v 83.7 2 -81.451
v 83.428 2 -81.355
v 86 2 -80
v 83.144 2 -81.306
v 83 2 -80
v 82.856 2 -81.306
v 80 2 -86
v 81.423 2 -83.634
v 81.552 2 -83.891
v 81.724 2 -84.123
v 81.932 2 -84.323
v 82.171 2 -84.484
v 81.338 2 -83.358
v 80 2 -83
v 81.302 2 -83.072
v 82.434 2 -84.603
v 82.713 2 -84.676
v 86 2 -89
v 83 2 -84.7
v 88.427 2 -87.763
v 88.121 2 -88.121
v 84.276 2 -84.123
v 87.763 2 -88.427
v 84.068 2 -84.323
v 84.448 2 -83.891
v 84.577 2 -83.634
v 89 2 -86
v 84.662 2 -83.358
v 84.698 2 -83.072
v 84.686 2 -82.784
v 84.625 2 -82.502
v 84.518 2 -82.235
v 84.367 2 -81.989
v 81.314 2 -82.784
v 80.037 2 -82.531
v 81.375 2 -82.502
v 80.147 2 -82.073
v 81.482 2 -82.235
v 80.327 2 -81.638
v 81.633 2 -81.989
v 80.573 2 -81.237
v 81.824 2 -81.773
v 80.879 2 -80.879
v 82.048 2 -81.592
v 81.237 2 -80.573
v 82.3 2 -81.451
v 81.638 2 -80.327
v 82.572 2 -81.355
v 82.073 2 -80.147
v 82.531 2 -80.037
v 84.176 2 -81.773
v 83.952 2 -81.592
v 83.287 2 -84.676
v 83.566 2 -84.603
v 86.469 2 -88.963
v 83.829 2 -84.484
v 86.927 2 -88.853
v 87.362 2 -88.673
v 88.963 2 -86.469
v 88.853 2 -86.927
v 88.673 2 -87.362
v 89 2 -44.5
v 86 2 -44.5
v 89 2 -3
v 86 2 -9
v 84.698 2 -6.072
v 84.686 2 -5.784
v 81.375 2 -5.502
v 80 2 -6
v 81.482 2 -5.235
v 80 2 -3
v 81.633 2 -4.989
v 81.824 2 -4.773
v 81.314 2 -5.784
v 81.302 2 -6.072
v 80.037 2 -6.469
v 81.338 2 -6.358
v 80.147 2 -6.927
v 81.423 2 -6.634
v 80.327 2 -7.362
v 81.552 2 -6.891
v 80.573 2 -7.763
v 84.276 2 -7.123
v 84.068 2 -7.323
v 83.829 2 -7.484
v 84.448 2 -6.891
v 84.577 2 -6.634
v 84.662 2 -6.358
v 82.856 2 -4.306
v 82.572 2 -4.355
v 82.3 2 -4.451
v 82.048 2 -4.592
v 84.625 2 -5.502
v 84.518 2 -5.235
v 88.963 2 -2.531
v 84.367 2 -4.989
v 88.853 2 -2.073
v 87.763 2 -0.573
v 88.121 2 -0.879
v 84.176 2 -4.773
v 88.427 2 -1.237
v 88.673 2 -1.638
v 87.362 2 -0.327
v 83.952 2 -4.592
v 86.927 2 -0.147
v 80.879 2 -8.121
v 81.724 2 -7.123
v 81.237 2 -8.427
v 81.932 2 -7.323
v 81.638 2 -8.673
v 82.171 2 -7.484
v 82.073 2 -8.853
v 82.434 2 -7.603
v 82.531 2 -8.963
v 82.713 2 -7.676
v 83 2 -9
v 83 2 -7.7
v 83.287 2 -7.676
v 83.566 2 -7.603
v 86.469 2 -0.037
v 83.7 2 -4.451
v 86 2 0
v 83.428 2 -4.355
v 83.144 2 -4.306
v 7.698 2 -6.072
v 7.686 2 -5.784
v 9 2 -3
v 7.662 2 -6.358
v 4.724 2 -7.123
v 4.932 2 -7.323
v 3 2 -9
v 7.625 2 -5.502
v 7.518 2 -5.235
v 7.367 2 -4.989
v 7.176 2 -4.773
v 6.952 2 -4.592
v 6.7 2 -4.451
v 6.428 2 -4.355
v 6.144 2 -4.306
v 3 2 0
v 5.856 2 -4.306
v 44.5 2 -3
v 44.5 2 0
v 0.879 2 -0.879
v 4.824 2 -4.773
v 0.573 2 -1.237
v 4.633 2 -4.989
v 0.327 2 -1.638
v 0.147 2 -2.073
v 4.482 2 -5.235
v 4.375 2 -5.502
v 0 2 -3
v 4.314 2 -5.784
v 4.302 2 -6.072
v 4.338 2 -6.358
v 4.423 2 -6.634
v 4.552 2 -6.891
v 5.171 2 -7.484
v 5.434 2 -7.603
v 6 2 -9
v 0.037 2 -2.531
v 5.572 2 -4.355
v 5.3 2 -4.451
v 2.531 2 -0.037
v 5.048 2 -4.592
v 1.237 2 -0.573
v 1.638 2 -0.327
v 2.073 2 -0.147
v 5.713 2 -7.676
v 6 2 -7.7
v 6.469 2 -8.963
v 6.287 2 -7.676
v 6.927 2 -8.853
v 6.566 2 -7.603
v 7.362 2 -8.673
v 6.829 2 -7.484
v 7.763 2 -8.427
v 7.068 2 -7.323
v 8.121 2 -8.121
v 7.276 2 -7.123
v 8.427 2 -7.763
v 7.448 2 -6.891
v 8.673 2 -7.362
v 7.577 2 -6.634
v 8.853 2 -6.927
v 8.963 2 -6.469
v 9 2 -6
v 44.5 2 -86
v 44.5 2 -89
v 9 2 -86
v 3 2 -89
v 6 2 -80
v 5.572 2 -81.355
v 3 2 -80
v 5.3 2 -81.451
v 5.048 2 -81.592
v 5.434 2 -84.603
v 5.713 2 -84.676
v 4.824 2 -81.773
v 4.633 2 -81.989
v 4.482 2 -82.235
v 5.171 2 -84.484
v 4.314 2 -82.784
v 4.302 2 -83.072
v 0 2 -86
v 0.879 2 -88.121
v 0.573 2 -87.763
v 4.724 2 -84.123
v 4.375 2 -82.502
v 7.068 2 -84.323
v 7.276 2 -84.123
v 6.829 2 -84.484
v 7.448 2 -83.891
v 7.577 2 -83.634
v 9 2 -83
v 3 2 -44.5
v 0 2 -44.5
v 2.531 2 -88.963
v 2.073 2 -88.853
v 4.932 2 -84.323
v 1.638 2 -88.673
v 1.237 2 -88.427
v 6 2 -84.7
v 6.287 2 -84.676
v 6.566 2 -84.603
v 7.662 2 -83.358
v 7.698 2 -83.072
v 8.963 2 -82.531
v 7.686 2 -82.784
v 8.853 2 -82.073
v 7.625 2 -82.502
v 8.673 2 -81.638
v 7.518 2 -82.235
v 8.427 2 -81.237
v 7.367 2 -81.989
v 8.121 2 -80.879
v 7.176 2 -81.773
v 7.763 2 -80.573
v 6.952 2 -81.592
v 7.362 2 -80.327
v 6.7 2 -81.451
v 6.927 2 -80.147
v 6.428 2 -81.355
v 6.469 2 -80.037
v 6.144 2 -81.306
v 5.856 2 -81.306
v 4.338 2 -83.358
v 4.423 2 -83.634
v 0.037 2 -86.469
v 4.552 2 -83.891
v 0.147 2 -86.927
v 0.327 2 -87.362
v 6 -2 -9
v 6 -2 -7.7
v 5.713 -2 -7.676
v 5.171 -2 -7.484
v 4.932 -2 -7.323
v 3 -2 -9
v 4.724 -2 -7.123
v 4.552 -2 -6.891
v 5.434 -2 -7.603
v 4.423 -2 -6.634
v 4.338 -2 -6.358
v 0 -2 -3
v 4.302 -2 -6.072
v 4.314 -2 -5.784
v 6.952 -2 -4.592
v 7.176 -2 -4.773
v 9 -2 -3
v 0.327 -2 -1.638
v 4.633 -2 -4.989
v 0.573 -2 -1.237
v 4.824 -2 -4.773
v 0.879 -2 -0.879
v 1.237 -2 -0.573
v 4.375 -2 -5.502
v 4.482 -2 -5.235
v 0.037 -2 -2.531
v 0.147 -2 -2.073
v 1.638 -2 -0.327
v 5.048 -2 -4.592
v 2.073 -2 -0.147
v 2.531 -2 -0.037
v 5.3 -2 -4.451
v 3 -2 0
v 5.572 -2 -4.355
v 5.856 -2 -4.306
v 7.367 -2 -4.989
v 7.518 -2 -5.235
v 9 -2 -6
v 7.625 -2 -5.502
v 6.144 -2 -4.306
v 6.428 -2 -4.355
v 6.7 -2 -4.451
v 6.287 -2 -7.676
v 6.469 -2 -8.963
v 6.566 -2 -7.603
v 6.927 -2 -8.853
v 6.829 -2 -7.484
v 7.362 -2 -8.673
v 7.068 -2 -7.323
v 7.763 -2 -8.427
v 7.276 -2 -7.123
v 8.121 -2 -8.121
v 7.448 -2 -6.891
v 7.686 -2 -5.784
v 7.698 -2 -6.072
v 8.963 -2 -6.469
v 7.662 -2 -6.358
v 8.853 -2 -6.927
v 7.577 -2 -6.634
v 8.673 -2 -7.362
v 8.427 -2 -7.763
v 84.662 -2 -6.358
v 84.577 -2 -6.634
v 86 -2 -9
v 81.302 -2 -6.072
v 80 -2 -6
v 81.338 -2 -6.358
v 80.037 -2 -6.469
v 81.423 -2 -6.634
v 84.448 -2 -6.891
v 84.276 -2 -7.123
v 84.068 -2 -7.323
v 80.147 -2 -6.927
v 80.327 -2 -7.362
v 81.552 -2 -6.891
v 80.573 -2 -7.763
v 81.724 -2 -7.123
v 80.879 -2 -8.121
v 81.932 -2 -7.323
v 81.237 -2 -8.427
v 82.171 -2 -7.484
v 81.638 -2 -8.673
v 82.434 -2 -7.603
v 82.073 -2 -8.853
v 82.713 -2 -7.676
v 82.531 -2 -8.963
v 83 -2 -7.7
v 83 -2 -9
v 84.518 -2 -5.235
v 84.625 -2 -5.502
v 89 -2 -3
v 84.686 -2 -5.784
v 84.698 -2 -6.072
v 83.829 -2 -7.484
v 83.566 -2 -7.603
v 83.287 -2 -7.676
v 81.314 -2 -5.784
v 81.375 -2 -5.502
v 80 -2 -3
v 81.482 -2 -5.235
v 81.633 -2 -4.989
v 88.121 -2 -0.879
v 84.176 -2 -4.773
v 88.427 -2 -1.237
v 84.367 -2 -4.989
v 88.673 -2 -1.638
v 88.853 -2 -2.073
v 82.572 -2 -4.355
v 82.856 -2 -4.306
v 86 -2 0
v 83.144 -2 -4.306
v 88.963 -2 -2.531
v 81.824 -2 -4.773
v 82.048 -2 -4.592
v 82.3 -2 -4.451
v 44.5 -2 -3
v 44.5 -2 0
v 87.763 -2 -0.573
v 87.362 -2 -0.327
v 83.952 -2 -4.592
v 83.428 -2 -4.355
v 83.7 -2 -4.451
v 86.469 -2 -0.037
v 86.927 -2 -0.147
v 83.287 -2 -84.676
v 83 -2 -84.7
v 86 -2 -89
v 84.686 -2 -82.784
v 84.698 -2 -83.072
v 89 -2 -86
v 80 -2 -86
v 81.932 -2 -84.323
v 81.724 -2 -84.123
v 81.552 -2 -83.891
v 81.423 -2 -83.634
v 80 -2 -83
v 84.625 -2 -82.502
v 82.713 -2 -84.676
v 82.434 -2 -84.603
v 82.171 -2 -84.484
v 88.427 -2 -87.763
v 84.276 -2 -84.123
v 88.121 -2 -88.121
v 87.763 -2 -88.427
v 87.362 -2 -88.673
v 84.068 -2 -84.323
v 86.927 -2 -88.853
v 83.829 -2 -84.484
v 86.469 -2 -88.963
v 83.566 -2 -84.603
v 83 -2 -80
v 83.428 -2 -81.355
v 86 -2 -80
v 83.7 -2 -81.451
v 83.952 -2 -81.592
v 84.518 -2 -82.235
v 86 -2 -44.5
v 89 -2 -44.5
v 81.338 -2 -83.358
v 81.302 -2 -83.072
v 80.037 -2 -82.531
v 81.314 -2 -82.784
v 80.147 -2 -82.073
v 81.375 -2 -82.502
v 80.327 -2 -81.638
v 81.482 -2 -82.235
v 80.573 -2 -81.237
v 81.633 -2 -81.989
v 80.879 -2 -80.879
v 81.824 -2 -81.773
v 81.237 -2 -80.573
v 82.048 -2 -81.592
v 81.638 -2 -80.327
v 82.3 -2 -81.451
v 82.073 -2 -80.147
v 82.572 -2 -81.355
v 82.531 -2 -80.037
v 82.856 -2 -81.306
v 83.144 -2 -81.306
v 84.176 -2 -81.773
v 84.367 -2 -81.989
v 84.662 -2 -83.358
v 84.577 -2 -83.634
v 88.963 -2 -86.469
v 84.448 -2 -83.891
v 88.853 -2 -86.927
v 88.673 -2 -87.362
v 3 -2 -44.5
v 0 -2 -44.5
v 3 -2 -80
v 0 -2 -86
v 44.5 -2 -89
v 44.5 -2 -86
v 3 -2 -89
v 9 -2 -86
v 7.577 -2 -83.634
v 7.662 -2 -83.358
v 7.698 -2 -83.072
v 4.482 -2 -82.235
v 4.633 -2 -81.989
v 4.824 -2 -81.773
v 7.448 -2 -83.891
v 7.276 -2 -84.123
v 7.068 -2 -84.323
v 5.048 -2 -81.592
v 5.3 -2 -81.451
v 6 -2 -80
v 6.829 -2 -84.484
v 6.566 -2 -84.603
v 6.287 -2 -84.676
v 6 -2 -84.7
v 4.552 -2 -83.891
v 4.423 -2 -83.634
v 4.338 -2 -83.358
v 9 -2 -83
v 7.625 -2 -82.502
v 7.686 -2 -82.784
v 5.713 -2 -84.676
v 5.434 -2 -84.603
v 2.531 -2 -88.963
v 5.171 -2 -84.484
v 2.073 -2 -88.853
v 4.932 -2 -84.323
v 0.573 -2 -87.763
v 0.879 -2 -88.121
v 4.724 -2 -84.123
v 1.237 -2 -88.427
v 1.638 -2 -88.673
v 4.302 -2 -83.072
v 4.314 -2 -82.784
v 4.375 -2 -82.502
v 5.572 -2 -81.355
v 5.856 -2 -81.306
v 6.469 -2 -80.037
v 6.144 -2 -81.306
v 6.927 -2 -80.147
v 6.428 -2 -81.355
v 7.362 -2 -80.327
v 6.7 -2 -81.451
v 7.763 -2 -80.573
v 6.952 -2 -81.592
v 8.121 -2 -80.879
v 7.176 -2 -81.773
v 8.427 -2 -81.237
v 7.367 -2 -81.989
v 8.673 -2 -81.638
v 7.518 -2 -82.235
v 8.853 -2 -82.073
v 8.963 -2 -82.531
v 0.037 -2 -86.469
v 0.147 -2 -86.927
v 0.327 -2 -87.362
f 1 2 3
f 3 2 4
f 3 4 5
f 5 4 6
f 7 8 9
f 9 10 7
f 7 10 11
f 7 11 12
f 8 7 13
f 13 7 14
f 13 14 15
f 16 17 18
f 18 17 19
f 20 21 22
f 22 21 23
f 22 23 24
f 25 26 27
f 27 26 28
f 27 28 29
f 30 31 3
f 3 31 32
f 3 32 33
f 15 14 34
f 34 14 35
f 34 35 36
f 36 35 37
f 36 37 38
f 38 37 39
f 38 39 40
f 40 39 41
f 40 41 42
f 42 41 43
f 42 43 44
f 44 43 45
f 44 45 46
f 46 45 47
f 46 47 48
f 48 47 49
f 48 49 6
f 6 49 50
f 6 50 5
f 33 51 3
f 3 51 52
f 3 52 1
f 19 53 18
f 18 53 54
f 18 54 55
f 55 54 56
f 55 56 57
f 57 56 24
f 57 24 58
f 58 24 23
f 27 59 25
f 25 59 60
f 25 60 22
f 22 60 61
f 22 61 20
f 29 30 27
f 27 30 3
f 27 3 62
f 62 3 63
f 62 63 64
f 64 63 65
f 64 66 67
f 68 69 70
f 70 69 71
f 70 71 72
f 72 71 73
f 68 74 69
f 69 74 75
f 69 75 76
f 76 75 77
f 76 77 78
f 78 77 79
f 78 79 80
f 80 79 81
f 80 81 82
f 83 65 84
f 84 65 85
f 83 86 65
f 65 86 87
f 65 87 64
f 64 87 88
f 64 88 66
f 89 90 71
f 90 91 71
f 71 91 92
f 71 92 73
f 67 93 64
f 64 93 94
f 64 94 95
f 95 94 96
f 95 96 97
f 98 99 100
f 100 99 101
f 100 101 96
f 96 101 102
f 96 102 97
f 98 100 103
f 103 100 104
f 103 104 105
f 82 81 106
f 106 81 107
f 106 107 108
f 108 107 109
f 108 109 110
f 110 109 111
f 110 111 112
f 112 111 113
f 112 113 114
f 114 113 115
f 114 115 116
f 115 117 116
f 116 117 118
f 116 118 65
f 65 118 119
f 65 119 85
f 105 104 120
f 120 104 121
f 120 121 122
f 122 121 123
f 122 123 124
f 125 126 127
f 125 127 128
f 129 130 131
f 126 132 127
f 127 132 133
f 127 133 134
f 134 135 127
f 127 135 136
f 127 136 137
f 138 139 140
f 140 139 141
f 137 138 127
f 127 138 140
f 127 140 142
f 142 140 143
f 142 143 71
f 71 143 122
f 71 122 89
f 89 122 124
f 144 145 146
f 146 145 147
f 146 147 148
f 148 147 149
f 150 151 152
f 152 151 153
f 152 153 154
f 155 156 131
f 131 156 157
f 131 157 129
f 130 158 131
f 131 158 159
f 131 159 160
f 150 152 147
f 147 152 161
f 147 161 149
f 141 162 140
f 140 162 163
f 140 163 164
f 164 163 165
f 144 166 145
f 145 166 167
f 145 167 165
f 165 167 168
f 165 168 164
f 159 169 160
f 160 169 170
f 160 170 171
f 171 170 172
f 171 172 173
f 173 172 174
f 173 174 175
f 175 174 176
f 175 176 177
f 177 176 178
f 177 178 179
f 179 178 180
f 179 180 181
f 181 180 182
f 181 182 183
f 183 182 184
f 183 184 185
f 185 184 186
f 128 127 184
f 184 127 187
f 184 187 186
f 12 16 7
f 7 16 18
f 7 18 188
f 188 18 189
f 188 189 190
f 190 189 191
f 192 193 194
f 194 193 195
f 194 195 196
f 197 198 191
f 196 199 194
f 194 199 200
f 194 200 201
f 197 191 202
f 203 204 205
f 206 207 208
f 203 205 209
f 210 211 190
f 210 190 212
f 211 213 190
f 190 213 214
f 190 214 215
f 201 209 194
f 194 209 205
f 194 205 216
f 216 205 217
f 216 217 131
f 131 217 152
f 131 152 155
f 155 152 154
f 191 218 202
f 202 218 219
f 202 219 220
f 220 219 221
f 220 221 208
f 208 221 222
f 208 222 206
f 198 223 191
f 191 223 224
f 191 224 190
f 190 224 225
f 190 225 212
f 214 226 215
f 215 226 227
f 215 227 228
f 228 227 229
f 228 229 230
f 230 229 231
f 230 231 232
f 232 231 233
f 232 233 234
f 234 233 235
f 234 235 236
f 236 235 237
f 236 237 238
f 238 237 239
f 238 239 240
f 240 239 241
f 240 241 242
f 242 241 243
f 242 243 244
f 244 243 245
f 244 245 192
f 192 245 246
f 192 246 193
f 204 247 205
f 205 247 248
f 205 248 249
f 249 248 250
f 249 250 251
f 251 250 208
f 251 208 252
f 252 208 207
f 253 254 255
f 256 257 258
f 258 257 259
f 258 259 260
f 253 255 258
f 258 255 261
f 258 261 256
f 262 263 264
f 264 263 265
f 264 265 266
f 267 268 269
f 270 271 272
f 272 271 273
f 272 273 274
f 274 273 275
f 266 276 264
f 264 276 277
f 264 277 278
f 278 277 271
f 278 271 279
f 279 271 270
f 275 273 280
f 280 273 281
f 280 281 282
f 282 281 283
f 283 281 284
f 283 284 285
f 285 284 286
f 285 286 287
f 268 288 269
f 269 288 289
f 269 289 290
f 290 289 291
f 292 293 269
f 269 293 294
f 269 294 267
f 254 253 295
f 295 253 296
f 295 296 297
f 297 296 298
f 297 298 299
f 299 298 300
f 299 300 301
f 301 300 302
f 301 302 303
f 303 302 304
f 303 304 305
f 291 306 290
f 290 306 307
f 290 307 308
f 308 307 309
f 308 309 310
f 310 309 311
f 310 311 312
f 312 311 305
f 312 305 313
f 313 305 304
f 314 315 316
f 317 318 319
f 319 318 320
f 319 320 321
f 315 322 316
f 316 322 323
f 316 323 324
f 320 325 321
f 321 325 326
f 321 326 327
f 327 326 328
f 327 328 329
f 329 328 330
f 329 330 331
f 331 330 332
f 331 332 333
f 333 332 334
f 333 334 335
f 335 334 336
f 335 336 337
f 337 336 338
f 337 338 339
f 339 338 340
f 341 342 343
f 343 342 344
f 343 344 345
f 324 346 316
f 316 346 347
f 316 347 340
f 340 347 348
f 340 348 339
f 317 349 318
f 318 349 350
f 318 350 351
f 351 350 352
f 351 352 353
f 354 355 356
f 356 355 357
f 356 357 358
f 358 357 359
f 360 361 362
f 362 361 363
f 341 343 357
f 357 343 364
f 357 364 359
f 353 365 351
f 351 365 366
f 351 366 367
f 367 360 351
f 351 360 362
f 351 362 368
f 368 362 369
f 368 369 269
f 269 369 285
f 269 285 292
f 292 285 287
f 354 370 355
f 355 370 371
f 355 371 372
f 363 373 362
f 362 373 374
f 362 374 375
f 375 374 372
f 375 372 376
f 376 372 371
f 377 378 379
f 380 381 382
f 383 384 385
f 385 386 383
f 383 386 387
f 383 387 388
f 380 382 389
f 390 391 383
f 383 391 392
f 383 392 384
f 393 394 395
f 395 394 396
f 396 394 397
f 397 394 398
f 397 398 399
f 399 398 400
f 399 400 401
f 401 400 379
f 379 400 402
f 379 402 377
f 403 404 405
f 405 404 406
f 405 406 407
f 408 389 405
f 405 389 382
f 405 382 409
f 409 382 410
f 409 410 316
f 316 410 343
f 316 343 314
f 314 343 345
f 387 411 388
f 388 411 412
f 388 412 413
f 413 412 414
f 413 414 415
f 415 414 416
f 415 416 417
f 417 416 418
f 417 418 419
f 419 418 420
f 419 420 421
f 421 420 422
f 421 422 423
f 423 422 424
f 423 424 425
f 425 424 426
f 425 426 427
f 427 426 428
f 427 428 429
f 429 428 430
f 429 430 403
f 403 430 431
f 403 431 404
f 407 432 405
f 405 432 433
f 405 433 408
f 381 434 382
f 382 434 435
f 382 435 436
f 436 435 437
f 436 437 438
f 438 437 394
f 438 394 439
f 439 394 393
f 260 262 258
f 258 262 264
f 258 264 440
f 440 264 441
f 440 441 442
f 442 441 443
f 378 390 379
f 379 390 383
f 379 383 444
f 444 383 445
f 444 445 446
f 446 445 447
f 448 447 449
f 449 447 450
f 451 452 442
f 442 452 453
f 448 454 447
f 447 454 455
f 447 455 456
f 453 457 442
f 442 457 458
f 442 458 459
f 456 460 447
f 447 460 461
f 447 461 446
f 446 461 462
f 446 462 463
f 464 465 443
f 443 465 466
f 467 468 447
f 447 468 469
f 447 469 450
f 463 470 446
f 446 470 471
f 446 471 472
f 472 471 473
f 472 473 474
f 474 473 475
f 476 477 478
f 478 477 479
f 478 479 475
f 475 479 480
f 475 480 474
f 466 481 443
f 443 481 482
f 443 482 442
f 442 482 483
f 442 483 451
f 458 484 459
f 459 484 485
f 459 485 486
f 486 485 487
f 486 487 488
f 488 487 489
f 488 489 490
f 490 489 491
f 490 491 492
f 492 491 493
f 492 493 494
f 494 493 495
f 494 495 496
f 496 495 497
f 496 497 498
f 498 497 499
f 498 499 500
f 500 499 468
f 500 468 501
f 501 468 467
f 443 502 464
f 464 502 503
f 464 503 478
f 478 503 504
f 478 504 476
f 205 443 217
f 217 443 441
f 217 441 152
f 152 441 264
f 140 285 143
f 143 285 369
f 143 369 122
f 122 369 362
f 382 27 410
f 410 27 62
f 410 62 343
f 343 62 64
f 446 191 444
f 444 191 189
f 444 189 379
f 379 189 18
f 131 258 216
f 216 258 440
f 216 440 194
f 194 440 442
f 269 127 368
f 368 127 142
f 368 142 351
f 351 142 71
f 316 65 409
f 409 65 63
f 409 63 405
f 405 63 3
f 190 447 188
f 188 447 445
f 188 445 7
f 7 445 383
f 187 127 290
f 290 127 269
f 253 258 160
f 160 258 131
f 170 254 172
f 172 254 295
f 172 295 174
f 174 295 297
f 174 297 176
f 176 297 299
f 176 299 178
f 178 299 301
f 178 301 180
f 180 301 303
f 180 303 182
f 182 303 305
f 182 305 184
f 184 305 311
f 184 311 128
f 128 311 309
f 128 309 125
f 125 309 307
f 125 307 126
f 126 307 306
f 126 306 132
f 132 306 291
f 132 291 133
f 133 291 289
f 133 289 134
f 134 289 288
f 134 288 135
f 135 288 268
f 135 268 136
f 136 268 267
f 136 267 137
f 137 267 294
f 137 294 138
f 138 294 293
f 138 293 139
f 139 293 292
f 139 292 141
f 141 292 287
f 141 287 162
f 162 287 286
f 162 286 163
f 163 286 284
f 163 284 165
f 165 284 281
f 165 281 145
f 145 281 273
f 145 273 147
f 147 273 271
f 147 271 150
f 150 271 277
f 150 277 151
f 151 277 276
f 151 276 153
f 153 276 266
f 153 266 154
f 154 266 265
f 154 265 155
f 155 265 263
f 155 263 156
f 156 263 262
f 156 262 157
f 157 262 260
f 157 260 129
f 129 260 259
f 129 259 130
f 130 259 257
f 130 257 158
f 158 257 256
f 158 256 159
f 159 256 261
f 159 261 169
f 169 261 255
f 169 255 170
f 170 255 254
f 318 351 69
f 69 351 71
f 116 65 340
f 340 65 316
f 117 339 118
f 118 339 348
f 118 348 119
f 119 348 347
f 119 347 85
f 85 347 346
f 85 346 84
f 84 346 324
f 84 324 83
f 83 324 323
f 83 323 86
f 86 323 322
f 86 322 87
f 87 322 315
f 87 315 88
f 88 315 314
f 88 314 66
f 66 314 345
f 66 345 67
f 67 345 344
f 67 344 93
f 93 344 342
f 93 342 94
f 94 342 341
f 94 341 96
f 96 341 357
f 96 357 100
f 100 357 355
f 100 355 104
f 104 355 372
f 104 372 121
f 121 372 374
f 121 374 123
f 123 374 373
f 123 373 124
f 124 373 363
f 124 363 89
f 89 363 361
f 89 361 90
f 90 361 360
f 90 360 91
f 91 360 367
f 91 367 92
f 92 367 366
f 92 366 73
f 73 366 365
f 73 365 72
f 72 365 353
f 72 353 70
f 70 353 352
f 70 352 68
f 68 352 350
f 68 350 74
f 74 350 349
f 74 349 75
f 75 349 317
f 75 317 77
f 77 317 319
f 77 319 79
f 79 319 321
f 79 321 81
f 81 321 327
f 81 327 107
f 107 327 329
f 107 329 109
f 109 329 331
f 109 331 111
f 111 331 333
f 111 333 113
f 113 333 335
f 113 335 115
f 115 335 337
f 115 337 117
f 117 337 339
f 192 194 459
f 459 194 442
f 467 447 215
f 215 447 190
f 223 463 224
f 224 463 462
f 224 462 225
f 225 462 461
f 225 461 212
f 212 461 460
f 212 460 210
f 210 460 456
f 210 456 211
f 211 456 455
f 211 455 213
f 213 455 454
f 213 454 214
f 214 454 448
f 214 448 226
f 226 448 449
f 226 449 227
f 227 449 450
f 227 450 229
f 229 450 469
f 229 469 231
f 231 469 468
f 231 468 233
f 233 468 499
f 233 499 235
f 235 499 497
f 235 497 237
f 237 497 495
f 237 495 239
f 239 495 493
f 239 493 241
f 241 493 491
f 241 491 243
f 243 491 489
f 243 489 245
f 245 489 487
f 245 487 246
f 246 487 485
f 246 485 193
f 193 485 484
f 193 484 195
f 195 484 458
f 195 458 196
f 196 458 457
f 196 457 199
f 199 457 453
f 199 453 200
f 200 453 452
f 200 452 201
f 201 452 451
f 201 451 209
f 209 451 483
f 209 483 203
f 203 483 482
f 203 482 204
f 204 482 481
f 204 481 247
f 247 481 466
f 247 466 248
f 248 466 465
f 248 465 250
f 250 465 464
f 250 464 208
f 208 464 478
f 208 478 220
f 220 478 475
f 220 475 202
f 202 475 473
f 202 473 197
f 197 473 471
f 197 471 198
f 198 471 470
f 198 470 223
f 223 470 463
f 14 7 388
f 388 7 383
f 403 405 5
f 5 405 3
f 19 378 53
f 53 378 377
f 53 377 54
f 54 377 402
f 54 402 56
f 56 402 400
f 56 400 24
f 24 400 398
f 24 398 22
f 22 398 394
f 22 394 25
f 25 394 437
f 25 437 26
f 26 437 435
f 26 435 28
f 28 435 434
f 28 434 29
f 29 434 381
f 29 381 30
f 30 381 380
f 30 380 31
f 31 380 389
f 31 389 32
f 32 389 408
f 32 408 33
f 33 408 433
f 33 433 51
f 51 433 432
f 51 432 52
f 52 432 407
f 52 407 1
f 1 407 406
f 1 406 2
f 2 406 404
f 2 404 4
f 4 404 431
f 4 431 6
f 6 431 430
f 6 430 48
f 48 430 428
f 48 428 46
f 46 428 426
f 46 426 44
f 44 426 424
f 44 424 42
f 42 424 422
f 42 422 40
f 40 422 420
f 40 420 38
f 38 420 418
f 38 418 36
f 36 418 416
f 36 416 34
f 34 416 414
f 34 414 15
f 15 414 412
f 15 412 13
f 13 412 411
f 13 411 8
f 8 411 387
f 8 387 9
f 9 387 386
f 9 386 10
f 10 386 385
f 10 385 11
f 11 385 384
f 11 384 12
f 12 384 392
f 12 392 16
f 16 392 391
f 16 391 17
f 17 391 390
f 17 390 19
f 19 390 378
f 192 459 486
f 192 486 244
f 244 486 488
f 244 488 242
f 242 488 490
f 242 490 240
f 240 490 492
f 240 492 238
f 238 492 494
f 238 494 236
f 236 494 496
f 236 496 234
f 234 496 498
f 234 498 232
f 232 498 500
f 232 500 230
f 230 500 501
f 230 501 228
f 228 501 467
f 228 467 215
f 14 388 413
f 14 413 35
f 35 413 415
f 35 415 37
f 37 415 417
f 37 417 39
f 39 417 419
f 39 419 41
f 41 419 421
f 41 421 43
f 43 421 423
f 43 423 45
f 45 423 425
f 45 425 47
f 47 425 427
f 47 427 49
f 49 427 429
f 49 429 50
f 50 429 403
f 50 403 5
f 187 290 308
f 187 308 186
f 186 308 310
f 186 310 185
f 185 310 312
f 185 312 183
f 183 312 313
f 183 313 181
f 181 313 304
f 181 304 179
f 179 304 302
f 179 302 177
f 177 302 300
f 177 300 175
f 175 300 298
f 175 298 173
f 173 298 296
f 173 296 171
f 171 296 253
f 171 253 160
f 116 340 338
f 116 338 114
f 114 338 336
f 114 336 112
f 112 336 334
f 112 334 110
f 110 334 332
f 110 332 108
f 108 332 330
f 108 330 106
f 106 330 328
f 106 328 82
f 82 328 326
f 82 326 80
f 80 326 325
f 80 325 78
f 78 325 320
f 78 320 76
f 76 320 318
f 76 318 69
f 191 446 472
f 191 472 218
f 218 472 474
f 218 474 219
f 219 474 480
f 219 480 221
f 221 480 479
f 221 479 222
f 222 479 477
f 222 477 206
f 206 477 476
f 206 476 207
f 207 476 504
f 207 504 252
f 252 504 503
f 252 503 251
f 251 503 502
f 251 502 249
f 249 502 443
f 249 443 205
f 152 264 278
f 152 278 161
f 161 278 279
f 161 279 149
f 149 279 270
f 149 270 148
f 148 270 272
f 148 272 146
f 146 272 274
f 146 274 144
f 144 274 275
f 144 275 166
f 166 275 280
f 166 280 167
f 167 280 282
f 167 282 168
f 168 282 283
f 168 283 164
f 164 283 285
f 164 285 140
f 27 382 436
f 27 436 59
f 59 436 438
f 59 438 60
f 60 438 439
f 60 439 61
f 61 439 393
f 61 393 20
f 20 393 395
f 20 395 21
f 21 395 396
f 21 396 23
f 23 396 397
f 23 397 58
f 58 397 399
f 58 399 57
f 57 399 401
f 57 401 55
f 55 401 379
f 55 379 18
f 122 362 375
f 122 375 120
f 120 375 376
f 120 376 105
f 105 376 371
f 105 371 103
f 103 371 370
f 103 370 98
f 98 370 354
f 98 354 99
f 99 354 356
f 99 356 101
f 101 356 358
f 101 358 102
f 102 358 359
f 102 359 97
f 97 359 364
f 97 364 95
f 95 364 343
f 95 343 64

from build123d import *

# Parameters (mm, degrees)
SKETCH1_W           = 89
SKETCH1_H           = 89
SKETCH1_W_2         = 83
SKETCH1_H_2         = 83
BOSS_EXTRUDE1_DEPTH = 2
SKETCH4_W           = 6
SKETCH4_H           = 6
SKETCH4_R           = 1.7
BOSS_EXTRUDE3_DEPTH = 4
FILLET3_R           = 3
FILLET4_R           = 3


with BuildPart() as part:
    # Sketch1 → Boss-Extrude1 (new body, symmetric)
    with BuildSketch(Plane(origin=(0, 0, 0), x_dir=(1, 0, 0), z_dir=(0, 1, 0))):
        with Locations((44.5, 44.5)):
            Rectangle(SKETCH1_W, SKETCH1_H)
        with Locations((44.5, 44.5)):
            Rectangle(SKETCH1_W_2, SKETCH1_H_2, mode=Mode.SUBTRACT)
    extrude(amount=BOSS_EXTRUDE1_DEPTH, both=True)

    # Sketch4 → Boss-Extrude3 (add)
    with BuildSketch(Plane.XZ.offset(2)):
        with Locations((83, -6)):
            Rectangle(SKETCH4_W, SKETCH4_H)
        with Locations((83, -6)):
            Circle(SKETCH4_R, mode=Mode.SUBTRACT)
        with Locations((6, -6)):
            Rectangle(SKETCH4_W, SKETCH4_H)
        with Locations((6, -6)):
            Circle(SKETCH4_R, mode=Mode.SUBTRACT)
        with Locations((83, -83)):
            Rectangle(SKETCH4_W, SKETCH4_H)
        with Locations((83, -83)):
            Circle(SKETCH4_R, mode=Mode.SUBTRACT)
        with Locations((6, -83)):
            Rectangle(SKETCH4_W, SKETCH4_H)
        with Locations((6, -83)):
            Circle(SKETCH4_R, mode=Mode.SUBTRACT)
    extrude(amount=-BOSS_EXTRUDE3_DEPTH)

    # Fillet3
    fillet3_edges = [part.edges().sort_by_distance(p)[0] for p in [
        (9, 0, -9),
        (80, 0, -9),
        (9, 0, -80),
        (80, 0, -80),
    ]]
    fillet(fillet3_edges, radius=FILLET3_R)

    # Fillet4
    fillet4_edges = [part.edges().sort_by_distance(p)[0] for p in [
        (0, 0, -89),
        (89, 0, -89),
        (89, 0, 0),
        (0, 0, 0),
    ]]
    fillet(fillet4_edges, radius=FILLET4_R)


solid = part.part
